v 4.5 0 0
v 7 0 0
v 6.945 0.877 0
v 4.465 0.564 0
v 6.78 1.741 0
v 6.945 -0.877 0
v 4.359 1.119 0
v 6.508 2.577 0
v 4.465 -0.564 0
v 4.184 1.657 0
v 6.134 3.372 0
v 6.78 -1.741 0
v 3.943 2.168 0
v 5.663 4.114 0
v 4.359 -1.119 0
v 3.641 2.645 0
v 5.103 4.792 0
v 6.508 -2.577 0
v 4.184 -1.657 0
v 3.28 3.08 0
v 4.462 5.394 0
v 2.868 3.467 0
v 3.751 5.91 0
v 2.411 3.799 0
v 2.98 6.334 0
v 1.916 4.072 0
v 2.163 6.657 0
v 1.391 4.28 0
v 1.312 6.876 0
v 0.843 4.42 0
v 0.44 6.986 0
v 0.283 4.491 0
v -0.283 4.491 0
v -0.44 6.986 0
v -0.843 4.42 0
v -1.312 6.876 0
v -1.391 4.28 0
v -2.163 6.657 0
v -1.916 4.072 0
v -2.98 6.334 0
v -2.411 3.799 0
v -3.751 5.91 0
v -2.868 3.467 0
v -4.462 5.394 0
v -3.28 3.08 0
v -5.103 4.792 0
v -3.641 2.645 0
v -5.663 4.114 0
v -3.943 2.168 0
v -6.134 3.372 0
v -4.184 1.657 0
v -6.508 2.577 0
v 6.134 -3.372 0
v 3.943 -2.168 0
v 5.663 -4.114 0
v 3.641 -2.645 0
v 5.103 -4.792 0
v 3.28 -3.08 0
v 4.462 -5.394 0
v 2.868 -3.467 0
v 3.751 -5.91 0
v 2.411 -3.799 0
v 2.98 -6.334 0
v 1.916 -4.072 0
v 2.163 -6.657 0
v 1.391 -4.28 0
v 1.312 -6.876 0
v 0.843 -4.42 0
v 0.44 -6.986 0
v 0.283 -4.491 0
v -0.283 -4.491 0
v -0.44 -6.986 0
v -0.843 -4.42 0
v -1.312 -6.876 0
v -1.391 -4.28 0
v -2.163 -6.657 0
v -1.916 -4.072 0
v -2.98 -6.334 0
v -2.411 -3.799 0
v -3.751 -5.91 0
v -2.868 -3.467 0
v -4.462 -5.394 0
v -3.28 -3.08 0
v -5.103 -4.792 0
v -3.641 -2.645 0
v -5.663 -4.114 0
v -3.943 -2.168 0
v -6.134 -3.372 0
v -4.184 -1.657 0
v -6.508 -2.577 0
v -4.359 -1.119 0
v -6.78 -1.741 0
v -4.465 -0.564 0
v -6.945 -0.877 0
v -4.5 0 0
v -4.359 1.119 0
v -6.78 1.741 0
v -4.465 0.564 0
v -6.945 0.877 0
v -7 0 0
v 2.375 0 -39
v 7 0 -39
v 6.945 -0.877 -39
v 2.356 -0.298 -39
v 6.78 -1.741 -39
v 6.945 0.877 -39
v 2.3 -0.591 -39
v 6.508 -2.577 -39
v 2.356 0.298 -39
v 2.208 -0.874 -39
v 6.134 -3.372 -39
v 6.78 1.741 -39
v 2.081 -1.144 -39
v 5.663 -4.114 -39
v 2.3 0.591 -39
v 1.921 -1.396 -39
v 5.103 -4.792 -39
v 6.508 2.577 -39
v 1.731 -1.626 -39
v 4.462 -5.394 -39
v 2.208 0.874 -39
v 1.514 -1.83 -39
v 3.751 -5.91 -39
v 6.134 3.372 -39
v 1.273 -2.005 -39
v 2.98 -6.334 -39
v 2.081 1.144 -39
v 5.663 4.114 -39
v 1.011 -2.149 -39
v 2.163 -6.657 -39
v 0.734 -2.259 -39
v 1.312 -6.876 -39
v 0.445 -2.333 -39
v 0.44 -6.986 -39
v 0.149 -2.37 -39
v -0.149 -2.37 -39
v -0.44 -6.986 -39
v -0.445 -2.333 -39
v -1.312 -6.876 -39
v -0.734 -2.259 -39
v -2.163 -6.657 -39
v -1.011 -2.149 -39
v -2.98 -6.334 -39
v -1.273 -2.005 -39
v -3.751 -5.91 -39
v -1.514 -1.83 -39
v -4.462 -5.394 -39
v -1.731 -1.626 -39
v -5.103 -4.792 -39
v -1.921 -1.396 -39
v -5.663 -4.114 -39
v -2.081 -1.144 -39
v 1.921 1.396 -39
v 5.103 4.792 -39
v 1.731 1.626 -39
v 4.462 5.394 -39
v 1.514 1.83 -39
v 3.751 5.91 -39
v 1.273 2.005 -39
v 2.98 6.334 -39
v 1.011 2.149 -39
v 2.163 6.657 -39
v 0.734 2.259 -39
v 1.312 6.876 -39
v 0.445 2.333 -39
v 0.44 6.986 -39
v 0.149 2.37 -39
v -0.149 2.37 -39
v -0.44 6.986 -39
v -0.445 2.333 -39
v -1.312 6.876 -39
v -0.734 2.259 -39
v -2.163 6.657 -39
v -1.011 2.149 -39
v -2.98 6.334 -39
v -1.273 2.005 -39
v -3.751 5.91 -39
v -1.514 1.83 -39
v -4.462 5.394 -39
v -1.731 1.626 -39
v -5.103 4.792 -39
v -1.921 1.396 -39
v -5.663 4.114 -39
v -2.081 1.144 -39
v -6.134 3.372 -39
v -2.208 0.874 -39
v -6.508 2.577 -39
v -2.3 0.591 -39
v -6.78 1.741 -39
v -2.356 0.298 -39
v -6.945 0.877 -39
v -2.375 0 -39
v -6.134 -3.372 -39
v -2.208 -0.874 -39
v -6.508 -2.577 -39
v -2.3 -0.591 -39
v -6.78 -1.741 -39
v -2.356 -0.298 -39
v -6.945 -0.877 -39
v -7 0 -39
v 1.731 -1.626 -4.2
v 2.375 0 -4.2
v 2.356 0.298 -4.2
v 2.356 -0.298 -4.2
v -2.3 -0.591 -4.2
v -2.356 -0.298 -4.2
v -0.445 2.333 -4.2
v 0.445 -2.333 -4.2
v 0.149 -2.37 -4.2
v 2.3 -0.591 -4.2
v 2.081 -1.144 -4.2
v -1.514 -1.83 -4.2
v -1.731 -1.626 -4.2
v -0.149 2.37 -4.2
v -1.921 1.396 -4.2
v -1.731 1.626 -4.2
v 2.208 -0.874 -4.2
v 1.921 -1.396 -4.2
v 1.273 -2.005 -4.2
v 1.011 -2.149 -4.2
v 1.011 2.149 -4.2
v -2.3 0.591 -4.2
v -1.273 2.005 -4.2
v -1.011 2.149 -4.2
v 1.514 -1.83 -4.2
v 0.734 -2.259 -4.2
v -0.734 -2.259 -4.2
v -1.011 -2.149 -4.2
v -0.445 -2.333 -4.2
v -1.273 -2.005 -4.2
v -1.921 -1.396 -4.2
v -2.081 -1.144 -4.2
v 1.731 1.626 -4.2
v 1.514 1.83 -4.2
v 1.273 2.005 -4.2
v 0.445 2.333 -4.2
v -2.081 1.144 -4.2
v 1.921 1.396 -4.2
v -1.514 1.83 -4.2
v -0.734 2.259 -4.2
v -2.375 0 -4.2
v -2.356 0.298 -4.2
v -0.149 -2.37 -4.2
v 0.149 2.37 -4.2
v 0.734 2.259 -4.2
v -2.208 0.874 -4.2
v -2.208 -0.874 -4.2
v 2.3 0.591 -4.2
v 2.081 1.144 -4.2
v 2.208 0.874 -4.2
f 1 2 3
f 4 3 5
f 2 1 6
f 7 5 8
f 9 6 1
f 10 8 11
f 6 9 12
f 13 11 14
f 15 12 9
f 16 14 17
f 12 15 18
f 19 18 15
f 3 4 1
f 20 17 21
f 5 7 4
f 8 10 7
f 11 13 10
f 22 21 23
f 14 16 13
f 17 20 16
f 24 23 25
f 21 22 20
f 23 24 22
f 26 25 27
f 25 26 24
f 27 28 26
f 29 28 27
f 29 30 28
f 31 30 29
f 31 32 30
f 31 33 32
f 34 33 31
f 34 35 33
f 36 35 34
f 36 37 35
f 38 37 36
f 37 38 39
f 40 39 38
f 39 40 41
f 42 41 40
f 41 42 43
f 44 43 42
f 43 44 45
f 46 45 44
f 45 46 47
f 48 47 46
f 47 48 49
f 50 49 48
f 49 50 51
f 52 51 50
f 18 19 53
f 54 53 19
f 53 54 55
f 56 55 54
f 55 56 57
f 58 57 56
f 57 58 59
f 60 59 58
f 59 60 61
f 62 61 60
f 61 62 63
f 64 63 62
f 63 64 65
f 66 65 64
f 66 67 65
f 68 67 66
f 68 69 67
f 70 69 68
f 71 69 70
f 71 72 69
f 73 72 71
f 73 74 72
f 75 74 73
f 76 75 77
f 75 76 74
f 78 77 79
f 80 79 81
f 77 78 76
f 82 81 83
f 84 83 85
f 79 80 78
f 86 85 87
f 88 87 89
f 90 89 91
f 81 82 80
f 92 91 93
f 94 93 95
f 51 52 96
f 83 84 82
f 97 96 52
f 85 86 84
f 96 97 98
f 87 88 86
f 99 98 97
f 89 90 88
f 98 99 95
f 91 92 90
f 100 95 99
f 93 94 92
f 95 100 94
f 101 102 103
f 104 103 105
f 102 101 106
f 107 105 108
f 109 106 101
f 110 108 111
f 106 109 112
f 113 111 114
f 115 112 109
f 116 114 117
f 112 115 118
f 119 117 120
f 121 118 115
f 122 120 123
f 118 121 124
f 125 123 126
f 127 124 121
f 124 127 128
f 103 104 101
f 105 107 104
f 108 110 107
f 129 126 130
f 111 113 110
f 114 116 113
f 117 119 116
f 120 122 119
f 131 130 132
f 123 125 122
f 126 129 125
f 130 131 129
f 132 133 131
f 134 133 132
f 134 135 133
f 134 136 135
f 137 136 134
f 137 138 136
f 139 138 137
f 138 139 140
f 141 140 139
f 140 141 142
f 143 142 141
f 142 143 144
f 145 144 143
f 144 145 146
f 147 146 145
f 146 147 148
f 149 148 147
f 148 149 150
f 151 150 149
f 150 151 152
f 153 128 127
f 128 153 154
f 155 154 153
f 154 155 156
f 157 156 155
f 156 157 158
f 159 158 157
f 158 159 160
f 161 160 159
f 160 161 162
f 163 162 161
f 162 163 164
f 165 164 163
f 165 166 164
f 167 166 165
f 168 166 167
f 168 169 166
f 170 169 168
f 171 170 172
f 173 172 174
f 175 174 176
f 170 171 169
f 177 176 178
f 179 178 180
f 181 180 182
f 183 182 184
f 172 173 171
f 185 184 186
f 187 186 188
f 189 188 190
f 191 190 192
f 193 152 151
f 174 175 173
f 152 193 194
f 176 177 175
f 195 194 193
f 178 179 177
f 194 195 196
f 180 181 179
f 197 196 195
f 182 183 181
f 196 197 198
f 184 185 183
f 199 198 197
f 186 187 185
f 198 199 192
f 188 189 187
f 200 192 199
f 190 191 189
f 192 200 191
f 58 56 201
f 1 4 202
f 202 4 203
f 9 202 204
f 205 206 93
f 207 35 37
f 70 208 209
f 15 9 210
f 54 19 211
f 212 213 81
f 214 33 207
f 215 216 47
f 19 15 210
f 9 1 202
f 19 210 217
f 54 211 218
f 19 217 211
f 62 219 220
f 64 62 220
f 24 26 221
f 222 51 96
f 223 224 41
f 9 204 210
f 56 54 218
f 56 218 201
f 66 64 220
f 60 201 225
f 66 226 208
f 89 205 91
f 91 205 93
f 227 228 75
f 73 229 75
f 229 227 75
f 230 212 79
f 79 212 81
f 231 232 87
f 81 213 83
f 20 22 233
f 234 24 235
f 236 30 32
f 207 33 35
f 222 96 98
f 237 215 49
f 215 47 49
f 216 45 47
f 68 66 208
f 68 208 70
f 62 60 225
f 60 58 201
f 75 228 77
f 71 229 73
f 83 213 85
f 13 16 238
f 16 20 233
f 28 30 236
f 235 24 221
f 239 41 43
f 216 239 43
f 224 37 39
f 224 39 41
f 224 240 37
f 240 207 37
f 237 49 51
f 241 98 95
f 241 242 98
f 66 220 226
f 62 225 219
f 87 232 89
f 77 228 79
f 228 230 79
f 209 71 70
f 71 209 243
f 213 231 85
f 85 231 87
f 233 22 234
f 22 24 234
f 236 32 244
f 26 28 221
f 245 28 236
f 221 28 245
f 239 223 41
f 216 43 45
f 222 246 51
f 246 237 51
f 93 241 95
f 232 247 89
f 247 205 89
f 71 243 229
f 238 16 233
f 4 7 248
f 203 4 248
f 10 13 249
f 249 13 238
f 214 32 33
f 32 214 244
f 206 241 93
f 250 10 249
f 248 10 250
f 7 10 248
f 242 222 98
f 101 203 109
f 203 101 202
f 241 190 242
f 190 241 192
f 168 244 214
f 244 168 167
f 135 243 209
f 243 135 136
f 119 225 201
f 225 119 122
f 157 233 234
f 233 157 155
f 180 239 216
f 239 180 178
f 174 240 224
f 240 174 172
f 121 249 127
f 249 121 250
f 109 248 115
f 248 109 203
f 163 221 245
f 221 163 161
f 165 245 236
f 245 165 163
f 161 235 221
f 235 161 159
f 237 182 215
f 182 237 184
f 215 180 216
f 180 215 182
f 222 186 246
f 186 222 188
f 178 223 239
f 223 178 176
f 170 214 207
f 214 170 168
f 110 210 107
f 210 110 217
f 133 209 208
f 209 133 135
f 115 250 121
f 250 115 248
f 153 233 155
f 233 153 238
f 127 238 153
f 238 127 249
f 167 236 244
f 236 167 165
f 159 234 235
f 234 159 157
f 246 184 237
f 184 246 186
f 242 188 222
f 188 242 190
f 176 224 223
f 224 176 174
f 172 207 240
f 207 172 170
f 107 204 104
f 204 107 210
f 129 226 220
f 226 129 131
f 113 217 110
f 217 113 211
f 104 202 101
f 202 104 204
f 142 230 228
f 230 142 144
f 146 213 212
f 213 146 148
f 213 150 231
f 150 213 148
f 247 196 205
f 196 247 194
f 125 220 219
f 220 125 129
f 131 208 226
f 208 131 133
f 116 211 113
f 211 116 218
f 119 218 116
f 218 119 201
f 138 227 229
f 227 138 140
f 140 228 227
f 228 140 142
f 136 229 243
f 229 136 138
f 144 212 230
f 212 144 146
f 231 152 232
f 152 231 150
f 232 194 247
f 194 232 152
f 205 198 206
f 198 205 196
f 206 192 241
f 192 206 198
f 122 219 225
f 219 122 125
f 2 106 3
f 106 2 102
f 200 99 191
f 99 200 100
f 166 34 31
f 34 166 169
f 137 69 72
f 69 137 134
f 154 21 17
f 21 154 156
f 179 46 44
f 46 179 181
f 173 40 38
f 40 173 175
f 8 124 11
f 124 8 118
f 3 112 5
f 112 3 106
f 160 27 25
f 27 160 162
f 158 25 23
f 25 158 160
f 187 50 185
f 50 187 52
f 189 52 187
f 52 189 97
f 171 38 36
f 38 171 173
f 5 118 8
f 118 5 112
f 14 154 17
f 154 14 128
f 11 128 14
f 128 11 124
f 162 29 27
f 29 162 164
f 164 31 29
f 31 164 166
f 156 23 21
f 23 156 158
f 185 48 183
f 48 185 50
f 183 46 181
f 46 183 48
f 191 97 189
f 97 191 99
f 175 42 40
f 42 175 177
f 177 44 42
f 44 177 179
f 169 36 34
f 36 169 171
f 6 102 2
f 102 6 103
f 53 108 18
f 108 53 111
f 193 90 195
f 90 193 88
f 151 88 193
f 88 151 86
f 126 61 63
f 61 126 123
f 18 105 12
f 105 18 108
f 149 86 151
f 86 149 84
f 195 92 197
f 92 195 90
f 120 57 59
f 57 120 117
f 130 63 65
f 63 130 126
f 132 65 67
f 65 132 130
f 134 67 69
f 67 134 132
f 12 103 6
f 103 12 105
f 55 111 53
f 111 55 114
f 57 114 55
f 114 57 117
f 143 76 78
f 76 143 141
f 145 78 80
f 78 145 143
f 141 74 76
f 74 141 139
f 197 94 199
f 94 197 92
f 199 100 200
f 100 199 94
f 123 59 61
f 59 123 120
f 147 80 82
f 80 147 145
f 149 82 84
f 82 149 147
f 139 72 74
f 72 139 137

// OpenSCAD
$fn = 50;


difference() {
	union() {
		translate(v = [0, 0, -39.0000000000]) {
			cylinder(h = 39, r = 7.0000000000);
		}
		cylinder(h = 0, r = 16.0000000000);
	}
	union() {
		translate(v = [0, 0, 0]) {
			rotate(a = [0, 0, 0]) {
				difference() {
					union() {
						#translate(v = [0, 0, -39.0000000000]) {
							cylinder(h = 39, r = 2.2500000000);
						}
						#translate(v = [0, 0, -4.2000000000]) {
							cylinder(h = 4.2000000000, r = 7.0000000000, r1 = 2.3750000000, r2 = 4.5000000000);
						}
						#translate(v = [0, 0, -39.0000000000]) {
							cylinder(h = 39, r = 2.3750000000);
						}
						#translate(v = [0, 0, -39.0000000000]) {
							cylinder(h = 39, r = 2.2500000000);
						}
					}
					union();
				}
			}
		}
	}
}
